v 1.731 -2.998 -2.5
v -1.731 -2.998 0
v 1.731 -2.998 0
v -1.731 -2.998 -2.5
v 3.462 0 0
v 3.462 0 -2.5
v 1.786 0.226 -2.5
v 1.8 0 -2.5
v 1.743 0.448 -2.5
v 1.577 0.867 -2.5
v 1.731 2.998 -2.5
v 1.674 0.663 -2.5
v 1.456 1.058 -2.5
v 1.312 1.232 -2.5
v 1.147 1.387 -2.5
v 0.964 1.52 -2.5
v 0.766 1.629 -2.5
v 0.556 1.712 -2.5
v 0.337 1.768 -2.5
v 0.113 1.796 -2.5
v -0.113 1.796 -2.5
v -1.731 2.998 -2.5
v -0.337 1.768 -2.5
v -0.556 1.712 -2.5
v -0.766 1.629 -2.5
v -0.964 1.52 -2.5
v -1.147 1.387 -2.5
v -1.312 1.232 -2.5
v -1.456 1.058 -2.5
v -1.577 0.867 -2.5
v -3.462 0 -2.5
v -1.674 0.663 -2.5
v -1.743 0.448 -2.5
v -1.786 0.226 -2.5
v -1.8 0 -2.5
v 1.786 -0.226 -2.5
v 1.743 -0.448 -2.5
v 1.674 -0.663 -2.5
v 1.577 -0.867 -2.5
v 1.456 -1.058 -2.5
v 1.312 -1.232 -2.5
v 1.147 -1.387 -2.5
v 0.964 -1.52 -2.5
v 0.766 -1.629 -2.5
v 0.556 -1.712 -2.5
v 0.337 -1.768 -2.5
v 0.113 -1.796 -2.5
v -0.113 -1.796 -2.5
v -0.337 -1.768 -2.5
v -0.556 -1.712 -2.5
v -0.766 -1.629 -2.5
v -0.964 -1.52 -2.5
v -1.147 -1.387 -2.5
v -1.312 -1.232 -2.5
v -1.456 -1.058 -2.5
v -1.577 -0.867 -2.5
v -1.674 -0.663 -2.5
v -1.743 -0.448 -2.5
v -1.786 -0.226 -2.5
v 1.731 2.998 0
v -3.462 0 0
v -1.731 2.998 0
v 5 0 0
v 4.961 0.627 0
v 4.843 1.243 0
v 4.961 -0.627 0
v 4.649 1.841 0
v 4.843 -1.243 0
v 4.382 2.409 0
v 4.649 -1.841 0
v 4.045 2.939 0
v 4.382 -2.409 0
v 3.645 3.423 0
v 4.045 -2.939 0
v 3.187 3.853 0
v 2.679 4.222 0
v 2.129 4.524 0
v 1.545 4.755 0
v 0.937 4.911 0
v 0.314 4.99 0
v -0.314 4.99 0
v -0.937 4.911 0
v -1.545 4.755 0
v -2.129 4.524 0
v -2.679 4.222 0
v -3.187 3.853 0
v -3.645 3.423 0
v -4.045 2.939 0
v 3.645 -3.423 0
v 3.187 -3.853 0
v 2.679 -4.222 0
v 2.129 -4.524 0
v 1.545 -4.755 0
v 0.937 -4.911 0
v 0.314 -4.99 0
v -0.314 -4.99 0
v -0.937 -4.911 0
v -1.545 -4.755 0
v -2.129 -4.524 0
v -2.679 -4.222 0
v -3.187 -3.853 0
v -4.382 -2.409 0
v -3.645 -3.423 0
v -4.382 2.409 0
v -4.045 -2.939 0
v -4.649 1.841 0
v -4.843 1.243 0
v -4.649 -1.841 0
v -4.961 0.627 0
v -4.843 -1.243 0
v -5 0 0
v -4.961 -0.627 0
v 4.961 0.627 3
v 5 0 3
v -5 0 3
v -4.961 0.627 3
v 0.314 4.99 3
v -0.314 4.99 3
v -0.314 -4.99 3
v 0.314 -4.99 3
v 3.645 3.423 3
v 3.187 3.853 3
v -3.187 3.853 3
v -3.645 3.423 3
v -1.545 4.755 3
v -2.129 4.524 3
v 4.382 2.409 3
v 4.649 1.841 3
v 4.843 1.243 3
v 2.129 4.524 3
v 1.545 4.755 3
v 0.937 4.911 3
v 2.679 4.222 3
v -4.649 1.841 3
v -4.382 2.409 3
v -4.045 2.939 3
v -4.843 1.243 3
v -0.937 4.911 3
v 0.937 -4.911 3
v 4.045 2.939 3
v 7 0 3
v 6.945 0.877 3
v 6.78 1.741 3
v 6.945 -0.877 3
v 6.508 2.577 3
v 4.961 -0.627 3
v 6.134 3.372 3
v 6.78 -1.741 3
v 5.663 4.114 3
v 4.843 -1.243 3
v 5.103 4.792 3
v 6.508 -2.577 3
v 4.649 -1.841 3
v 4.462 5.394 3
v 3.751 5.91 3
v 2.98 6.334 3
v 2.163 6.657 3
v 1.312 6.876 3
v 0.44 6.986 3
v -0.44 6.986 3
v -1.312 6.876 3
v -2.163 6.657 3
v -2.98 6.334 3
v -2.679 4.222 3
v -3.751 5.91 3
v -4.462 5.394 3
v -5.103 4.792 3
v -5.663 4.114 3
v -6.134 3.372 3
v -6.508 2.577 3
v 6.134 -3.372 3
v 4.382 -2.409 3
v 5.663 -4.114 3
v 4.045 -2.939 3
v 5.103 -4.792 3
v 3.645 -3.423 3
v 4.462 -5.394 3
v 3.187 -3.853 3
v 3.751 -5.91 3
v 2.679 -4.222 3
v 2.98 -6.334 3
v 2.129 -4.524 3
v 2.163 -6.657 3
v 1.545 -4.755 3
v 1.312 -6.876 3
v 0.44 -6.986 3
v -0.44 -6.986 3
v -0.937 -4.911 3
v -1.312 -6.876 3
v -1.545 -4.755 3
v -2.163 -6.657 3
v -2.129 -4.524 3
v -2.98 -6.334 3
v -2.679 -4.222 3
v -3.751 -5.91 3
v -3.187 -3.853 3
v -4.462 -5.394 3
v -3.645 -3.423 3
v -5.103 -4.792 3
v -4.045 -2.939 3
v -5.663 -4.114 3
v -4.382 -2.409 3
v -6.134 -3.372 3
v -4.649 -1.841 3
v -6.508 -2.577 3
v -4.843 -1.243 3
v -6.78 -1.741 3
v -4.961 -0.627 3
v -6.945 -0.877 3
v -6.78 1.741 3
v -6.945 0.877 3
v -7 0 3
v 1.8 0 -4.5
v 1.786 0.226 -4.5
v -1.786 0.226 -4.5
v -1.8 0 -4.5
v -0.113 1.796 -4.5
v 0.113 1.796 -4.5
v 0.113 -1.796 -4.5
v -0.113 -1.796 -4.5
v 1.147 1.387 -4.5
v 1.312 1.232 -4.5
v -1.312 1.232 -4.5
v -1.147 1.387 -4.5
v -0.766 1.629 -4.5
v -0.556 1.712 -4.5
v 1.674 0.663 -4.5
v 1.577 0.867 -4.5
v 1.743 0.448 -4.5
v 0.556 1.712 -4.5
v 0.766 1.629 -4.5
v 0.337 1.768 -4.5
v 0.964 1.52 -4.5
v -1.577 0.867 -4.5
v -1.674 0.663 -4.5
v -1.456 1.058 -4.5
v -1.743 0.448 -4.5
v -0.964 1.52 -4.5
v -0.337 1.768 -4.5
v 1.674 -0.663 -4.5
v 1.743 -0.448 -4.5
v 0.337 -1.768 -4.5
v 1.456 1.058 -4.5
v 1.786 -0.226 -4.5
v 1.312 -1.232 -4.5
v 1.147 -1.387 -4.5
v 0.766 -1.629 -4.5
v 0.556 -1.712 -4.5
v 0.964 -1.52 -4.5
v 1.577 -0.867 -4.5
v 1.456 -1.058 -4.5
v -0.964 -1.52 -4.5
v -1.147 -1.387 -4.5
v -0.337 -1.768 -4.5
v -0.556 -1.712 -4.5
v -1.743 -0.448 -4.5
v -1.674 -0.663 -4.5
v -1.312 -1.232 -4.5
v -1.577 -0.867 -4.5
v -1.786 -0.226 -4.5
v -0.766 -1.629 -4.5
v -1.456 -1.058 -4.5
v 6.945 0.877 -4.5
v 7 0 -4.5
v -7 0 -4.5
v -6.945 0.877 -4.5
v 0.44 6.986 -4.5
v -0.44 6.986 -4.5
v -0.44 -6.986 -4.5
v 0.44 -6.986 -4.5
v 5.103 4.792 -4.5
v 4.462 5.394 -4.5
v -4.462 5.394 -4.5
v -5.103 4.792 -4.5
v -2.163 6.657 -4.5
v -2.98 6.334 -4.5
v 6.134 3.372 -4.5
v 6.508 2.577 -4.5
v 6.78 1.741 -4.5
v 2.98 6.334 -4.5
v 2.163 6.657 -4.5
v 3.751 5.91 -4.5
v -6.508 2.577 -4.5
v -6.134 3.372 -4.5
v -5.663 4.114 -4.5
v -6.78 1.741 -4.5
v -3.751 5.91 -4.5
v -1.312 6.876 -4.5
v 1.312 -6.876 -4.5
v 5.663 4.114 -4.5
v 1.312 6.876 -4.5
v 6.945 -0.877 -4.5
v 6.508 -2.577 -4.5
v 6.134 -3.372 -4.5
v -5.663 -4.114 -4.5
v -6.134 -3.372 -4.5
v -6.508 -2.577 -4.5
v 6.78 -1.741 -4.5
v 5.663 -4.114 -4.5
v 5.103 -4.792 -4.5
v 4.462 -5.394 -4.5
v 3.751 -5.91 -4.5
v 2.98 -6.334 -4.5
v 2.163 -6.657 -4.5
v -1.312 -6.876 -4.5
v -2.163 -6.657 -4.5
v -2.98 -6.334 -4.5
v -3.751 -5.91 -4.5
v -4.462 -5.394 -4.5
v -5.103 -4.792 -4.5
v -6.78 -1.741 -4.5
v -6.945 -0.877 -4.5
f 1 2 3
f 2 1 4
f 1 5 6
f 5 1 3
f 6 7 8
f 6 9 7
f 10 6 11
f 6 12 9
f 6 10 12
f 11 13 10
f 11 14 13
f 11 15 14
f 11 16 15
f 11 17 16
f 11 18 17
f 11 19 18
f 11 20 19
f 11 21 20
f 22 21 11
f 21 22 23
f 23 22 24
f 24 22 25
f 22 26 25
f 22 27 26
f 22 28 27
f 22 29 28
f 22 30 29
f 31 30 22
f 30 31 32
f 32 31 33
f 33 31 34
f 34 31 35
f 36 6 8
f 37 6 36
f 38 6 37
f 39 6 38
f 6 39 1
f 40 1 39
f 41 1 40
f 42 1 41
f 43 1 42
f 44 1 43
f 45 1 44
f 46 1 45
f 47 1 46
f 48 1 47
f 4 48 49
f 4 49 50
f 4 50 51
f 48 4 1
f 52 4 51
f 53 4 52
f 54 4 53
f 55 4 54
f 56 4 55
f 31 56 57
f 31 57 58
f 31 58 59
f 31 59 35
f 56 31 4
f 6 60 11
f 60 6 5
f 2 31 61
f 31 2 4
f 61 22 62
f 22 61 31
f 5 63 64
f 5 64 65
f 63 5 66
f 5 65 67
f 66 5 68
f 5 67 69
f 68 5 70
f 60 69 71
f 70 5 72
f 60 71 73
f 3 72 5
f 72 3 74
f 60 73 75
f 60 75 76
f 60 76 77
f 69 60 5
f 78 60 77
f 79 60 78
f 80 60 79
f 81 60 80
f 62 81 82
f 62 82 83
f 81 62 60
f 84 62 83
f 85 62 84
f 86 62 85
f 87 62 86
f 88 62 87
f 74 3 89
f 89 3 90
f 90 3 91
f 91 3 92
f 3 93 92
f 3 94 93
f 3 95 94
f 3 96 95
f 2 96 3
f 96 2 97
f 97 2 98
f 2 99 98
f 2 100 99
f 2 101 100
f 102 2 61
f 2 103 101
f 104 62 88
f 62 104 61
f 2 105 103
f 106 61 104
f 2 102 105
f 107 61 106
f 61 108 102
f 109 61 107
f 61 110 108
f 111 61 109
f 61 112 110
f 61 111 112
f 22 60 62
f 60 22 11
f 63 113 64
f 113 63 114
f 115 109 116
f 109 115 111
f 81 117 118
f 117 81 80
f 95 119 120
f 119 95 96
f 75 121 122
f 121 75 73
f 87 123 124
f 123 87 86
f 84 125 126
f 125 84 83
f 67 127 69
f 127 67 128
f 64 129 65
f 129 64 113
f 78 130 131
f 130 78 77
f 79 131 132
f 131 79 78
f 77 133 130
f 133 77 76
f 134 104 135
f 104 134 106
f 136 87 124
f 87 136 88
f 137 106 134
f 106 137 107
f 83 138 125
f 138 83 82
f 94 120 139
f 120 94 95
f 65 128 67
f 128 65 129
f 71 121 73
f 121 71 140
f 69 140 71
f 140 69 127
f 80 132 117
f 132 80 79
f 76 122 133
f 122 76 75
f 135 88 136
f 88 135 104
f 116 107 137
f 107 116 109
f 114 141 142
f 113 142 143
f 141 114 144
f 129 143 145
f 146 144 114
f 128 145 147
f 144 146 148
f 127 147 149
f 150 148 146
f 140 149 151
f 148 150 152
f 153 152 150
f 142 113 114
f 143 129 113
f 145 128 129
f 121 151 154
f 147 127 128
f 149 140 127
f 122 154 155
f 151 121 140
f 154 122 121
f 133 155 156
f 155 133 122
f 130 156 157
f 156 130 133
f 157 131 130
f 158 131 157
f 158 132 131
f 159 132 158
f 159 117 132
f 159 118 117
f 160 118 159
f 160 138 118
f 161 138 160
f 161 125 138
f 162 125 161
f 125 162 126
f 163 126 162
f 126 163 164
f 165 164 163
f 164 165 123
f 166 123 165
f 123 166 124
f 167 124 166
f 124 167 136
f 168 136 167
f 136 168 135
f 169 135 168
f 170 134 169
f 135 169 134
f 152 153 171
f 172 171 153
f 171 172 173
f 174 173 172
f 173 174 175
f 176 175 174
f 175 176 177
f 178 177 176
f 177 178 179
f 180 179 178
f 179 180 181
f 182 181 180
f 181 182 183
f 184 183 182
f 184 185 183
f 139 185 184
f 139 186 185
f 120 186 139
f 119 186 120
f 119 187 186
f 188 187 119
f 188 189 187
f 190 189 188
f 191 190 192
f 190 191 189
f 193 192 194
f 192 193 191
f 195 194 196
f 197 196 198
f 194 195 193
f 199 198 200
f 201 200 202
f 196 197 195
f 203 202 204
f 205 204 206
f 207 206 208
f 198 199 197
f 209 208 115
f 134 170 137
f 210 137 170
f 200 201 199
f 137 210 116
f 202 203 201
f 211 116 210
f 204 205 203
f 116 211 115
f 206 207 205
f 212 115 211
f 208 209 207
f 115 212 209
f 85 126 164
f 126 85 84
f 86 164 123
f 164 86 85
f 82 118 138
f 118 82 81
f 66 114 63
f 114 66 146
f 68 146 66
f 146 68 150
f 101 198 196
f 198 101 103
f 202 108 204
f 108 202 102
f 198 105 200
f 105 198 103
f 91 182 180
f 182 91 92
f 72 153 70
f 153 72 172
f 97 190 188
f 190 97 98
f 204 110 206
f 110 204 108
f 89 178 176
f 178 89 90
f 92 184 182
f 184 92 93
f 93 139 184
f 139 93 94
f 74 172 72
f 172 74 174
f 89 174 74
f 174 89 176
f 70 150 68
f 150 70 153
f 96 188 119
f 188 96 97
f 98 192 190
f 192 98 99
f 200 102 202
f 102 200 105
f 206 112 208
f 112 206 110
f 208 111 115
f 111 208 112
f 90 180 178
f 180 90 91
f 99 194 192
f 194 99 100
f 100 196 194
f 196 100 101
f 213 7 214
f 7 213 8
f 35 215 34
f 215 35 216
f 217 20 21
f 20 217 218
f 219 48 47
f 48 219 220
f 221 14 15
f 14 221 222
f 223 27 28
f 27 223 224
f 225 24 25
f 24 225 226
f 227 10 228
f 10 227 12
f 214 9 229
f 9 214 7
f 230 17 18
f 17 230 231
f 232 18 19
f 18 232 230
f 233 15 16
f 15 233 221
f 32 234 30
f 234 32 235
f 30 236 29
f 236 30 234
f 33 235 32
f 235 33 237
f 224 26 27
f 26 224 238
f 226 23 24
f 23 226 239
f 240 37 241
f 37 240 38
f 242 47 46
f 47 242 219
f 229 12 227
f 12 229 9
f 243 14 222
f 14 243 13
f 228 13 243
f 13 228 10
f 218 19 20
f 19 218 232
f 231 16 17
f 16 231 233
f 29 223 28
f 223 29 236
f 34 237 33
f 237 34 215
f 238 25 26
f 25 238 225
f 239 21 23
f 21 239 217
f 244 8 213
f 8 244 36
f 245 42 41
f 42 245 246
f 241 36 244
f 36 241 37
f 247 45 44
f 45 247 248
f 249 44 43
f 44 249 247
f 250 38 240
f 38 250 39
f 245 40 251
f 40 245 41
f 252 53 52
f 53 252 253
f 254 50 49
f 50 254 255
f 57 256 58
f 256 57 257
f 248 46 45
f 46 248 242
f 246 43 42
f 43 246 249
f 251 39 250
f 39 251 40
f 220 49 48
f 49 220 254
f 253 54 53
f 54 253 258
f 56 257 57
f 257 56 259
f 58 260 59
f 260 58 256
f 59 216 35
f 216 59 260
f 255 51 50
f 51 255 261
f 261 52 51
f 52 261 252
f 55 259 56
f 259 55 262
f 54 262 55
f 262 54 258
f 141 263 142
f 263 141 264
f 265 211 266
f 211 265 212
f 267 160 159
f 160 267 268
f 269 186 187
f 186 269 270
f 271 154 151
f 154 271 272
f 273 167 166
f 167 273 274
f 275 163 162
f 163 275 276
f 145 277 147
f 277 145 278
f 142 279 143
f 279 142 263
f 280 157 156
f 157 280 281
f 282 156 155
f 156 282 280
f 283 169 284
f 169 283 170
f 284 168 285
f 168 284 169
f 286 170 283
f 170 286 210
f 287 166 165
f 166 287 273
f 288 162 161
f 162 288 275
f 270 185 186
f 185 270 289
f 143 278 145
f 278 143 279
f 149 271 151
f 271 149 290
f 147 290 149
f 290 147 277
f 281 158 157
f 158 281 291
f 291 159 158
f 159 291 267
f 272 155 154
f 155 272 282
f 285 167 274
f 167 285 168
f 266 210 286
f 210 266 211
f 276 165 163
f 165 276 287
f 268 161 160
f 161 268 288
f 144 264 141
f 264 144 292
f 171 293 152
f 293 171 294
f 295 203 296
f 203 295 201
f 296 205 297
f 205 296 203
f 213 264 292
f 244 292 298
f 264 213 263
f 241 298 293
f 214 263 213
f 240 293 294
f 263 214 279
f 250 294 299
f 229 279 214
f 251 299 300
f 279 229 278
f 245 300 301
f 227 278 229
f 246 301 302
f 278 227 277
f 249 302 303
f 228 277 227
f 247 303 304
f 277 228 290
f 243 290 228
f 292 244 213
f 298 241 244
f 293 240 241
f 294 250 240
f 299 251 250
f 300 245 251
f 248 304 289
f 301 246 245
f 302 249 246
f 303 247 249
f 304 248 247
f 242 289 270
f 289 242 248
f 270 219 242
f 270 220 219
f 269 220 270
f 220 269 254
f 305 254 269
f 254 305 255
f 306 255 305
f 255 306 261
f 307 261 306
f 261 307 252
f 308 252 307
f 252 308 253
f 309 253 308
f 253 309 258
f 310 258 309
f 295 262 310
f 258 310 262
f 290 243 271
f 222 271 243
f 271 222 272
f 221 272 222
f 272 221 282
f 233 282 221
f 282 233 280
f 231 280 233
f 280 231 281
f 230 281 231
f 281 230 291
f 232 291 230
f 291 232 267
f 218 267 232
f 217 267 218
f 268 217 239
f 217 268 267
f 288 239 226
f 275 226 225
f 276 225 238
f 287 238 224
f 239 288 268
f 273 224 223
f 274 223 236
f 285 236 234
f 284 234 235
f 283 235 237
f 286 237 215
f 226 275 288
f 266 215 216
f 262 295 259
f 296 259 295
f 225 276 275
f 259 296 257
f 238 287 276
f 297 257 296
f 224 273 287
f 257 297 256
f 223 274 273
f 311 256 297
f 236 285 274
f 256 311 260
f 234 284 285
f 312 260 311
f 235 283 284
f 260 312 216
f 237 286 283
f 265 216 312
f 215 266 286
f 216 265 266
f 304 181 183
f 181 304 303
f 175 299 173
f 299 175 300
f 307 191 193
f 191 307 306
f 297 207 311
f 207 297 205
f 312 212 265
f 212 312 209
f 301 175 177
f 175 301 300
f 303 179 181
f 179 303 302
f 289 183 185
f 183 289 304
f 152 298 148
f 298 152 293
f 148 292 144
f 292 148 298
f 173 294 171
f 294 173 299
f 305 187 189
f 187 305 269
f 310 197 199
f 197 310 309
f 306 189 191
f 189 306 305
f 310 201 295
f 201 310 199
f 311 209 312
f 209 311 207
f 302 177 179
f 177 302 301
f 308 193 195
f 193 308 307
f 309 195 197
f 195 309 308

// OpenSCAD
$fn = 50;


difference() {
	union() {
		translate(v = [0, 0, -4.5000000000]) {
			cylinder(h = 7.5000000000, r = 7.0000000000);
		}
	}
	union() {
		translate(v = [0, 0, 0]) {
			rotate(a = [0, 0, 0]) {
				difference() {
					union() {
						translate(v = [0, 0, -2.5000000000]) {
							linear_extrude(height = 2.5000000000) {
								polygon(points = [[3.4620000000, 0.0000000000], [1.7310000000, 2.9981799479], [-1.7310000000, 2.9981799479], [-3.4620000000, 0.0000000000], [-1.7310000000, -2.9981799479], [1.7310000000, -2.9981799479]]);
							}
						}
					}
					union();
				}
			}
		}
		#cylinder(h = 3, r = 5.0000000000);
		#translate(v = [0, 0, -100.0000000000]) {
			cylinder(h = 200, r = 1.8000000000);
		}
	}
}
